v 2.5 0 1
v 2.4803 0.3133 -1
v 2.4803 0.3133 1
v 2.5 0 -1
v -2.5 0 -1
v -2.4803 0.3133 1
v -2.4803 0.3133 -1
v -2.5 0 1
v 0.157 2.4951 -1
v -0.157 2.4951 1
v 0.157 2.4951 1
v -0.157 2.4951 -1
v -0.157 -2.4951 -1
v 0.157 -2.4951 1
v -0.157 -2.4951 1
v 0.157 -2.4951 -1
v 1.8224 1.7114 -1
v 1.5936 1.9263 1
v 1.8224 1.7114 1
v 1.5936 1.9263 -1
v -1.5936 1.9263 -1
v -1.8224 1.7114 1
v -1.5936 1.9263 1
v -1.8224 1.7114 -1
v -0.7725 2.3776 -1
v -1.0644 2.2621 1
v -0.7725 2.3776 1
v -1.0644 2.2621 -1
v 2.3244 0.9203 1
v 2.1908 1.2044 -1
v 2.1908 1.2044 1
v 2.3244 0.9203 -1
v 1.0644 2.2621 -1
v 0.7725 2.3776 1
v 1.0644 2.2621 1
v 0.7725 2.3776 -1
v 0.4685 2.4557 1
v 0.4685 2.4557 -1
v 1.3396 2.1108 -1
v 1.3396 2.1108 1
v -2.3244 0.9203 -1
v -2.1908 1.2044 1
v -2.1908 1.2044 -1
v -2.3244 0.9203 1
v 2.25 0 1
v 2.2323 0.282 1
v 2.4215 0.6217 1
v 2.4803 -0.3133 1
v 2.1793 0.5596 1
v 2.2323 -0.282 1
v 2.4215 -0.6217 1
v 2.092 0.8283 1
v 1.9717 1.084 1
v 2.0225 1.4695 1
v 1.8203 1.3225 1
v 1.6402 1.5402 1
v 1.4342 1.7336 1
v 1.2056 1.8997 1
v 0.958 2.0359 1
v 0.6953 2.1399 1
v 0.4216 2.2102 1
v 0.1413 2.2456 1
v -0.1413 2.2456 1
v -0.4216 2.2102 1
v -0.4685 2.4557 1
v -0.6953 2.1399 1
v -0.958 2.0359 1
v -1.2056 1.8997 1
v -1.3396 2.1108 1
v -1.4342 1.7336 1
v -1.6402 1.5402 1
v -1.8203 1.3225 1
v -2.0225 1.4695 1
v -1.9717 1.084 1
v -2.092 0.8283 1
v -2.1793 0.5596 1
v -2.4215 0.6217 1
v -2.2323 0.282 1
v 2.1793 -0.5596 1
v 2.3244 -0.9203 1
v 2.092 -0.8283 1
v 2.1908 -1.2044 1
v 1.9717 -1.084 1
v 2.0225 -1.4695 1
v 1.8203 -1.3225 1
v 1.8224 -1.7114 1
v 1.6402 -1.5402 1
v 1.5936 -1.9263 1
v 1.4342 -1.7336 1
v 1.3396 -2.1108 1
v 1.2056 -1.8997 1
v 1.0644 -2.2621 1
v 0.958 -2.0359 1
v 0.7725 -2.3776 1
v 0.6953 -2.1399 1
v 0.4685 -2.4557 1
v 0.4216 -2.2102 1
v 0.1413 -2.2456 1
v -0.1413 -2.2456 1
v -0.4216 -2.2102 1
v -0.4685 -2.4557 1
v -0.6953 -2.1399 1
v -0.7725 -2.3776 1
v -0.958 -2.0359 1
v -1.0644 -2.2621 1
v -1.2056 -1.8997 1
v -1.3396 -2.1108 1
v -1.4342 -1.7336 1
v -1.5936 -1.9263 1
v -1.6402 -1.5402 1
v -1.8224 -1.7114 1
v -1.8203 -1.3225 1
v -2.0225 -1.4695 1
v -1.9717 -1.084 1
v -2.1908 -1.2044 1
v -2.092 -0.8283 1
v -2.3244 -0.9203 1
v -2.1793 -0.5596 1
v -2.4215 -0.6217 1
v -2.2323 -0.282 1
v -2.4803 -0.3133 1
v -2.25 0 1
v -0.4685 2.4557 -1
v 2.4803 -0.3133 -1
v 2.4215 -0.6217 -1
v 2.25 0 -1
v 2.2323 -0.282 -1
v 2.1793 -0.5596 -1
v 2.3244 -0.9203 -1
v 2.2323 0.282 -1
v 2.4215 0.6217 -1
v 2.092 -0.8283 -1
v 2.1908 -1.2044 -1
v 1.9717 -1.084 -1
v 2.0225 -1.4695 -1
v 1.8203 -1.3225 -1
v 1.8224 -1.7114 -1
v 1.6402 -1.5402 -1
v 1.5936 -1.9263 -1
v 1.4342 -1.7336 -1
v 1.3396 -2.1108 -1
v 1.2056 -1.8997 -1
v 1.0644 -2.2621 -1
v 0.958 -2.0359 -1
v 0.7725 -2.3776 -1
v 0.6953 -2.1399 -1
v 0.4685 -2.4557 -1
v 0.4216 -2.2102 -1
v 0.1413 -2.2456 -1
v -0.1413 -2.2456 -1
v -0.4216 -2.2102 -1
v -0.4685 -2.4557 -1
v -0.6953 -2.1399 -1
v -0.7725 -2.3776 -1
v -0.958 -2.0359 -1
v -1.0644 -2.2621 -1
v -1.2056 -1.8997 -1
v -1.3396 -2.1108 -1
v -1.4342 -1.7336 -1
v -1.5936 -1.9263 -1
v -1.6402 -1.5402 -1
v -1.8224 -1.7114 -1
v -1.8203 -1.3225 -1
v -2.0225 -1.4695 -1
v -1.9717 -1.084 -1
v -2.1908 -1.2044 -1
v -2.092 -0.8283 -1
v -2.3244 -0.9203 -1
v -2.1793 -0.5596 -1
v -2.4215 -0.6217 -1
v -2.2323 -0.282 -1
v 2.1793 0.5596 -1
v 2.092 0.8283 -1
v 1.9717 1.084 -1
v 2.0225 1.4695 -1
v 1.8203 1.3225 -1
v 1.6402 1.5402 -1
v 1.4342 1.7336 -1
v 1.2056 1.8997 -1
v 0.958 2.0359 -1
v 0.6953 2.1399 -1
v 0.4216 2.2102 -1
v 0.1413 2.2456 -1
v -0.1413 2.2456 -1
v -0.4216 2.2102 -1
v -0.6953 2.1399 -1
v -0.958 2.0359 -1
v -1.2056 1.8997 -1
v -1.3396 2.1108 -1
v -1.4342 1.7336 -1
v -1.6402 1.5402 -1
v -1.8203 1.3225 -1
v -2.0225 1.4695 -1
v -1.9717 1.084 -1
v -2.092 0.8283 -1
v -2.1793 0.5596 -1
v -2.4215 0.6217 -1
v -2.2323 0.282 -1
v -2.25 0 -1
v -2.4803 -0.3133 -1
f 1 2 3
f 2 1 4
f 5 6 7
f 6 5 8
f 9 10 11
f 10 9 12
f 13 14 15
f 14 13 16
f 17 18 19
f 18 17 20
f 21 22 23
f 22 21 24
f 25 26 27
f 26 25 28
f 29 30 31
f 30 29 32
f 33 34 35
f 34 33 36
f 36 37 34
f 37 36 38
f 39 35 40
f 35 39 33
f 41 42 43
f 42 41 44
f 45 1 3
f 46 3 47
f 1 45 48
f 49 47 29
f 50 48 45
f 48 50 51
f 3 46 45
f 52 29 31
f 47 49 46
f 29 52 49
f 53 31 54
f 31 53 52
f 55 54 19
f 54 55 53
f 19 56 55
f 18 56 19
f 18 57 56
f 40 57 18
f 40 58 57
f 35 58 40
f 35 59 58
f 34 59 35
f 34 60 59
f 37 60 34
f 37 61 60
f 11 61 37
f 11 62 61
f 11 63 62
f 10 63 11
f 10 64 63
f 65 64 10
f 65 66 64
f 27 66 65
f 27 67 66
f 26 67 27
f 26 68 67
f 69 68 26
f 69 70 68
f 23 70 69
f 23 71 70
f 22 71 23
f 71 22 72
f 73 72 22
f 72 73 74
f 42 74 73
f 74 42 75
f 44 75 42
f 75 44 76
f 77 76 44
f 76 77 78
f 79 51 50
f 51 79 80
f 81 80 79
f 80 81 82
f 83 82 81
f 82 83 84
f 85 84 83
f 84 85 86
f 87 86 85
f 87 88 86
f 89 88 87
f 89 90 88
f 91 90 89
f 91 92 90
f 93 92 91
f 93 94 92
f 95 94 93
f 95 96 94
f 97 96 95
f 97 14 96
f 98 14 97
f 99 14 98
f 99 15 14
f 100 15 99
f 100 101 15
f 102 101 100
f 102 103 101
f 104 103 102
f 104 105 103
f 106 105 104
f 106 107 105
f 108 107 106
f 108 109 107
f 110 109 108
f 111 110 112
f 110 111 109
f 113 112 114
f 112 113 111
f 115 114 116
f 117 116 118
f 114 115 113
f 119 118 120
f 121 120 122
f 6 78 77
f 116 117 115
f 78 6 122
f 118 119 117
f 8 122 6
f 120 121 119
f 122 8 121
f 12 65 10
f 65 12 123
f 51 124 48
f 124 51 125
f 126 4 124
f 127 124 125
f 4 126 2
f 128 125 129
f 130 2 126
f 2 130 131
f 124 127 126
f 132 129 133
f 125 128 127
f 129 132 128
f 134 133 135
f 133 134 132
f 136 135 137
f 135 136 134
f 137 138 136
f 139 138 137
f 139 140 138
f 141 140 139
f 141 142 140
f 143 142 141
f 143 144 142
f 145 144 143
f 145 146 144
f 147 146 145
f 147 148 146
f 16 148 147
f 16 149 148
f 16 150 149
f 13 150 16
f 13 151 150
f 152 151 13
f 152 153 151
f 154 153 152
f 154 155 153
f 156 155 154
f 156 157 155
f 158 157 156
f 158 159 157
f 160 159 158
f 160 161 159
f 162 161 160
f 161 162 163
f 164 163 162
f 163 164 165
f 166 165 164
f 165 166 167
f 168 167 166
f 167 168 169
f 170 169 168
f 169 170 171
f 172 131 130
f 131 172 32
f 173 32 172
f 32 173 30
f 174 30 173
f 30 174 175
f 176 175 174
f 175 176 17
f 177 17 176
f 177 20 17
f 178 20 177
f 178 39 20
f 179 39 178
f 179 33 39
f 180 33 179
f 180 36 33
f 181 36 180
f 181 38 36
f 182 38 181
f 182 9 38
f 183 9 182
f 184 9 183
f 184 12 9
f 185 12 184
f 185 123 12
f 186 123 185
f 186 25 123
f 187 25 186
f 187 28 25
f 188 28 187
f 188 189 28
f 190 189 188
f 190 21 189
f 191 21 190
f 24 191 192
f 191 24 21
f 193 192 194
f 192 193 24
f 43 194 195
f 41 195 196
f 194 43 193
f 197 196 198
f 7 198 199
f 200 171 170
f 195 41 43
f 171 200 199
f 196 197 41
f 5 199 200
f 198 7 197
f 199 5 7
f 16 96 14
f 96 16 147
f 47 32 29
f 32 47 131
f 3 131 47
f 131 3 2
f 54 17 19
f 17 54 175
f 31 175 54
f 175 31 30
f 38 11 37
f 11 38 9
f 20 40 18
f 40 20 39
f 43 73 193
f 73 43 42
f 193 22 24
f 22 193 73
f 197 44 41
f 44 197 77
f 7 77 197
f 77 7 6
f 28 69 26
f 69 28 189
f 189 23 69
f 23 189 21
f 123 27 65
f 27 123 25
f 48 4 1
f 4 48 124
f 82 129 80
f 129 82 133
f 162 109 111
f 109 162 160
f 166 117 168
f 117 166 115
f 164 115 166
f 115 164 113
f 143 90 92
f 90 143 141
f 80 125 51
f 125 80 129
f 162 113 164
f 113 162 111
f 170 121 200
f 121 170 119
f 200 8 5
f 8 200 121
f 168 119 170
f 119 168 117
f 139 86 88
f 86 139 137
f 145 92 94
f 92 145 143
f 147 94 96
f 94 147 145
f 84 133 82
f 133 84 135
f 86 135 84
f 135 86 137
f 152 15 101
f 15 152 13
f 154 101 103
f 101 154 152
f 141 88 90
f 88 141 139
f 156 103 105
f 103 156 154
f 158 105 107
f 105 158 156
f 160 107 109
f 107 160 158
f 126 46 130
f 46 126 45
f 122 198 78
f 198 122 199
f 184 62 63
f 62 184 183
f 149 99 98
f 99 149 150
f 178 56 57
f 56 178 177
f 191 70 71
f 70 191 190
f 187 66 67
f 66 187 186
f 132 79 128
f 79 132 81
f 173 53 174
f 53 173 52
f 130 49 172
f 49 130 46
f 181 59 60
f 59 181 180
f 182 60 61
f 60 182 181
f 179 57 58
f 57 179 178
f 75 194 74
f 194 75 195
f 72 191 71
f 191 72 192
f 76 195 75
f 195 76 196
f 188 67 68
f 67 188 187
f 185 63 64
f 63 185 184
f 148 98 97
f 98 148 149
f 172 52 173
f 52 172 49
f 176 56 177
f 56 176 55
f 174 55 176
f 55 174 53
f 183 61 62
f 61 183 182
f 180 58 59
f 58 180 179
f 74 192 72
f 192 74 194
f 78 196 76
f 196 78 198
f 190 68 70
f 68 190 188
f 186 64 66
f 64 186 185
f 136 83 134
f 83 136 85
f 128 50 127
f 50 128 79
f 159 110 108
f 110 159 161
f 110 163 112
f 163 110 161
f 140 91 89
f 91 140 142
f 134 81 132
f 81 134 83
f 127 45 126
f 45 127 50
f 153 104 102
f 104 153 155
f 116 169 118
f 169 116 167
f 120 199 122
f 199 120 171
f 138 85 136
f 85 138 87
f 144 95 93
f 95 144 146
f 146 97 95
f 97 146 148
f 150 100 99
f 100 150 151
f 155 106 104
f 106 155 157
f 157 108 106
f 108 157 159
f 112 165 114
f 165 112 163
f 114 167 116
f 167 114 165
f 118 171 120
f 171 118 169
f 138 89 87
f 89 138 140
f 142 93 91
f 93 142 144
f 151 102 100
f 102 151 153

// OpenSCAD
$fn = 50;


difference() {
	union() {
		translate(v = [0, 0, -1.0000000000]) {
			cylinder(h = 2, r = 2.5000000000);
		}
	}
	union() {
		translate(v = [0, 0, -100.0000000000]) {
			cylinder(h = 200, r = 2.2500000000);
		}
	}
}
